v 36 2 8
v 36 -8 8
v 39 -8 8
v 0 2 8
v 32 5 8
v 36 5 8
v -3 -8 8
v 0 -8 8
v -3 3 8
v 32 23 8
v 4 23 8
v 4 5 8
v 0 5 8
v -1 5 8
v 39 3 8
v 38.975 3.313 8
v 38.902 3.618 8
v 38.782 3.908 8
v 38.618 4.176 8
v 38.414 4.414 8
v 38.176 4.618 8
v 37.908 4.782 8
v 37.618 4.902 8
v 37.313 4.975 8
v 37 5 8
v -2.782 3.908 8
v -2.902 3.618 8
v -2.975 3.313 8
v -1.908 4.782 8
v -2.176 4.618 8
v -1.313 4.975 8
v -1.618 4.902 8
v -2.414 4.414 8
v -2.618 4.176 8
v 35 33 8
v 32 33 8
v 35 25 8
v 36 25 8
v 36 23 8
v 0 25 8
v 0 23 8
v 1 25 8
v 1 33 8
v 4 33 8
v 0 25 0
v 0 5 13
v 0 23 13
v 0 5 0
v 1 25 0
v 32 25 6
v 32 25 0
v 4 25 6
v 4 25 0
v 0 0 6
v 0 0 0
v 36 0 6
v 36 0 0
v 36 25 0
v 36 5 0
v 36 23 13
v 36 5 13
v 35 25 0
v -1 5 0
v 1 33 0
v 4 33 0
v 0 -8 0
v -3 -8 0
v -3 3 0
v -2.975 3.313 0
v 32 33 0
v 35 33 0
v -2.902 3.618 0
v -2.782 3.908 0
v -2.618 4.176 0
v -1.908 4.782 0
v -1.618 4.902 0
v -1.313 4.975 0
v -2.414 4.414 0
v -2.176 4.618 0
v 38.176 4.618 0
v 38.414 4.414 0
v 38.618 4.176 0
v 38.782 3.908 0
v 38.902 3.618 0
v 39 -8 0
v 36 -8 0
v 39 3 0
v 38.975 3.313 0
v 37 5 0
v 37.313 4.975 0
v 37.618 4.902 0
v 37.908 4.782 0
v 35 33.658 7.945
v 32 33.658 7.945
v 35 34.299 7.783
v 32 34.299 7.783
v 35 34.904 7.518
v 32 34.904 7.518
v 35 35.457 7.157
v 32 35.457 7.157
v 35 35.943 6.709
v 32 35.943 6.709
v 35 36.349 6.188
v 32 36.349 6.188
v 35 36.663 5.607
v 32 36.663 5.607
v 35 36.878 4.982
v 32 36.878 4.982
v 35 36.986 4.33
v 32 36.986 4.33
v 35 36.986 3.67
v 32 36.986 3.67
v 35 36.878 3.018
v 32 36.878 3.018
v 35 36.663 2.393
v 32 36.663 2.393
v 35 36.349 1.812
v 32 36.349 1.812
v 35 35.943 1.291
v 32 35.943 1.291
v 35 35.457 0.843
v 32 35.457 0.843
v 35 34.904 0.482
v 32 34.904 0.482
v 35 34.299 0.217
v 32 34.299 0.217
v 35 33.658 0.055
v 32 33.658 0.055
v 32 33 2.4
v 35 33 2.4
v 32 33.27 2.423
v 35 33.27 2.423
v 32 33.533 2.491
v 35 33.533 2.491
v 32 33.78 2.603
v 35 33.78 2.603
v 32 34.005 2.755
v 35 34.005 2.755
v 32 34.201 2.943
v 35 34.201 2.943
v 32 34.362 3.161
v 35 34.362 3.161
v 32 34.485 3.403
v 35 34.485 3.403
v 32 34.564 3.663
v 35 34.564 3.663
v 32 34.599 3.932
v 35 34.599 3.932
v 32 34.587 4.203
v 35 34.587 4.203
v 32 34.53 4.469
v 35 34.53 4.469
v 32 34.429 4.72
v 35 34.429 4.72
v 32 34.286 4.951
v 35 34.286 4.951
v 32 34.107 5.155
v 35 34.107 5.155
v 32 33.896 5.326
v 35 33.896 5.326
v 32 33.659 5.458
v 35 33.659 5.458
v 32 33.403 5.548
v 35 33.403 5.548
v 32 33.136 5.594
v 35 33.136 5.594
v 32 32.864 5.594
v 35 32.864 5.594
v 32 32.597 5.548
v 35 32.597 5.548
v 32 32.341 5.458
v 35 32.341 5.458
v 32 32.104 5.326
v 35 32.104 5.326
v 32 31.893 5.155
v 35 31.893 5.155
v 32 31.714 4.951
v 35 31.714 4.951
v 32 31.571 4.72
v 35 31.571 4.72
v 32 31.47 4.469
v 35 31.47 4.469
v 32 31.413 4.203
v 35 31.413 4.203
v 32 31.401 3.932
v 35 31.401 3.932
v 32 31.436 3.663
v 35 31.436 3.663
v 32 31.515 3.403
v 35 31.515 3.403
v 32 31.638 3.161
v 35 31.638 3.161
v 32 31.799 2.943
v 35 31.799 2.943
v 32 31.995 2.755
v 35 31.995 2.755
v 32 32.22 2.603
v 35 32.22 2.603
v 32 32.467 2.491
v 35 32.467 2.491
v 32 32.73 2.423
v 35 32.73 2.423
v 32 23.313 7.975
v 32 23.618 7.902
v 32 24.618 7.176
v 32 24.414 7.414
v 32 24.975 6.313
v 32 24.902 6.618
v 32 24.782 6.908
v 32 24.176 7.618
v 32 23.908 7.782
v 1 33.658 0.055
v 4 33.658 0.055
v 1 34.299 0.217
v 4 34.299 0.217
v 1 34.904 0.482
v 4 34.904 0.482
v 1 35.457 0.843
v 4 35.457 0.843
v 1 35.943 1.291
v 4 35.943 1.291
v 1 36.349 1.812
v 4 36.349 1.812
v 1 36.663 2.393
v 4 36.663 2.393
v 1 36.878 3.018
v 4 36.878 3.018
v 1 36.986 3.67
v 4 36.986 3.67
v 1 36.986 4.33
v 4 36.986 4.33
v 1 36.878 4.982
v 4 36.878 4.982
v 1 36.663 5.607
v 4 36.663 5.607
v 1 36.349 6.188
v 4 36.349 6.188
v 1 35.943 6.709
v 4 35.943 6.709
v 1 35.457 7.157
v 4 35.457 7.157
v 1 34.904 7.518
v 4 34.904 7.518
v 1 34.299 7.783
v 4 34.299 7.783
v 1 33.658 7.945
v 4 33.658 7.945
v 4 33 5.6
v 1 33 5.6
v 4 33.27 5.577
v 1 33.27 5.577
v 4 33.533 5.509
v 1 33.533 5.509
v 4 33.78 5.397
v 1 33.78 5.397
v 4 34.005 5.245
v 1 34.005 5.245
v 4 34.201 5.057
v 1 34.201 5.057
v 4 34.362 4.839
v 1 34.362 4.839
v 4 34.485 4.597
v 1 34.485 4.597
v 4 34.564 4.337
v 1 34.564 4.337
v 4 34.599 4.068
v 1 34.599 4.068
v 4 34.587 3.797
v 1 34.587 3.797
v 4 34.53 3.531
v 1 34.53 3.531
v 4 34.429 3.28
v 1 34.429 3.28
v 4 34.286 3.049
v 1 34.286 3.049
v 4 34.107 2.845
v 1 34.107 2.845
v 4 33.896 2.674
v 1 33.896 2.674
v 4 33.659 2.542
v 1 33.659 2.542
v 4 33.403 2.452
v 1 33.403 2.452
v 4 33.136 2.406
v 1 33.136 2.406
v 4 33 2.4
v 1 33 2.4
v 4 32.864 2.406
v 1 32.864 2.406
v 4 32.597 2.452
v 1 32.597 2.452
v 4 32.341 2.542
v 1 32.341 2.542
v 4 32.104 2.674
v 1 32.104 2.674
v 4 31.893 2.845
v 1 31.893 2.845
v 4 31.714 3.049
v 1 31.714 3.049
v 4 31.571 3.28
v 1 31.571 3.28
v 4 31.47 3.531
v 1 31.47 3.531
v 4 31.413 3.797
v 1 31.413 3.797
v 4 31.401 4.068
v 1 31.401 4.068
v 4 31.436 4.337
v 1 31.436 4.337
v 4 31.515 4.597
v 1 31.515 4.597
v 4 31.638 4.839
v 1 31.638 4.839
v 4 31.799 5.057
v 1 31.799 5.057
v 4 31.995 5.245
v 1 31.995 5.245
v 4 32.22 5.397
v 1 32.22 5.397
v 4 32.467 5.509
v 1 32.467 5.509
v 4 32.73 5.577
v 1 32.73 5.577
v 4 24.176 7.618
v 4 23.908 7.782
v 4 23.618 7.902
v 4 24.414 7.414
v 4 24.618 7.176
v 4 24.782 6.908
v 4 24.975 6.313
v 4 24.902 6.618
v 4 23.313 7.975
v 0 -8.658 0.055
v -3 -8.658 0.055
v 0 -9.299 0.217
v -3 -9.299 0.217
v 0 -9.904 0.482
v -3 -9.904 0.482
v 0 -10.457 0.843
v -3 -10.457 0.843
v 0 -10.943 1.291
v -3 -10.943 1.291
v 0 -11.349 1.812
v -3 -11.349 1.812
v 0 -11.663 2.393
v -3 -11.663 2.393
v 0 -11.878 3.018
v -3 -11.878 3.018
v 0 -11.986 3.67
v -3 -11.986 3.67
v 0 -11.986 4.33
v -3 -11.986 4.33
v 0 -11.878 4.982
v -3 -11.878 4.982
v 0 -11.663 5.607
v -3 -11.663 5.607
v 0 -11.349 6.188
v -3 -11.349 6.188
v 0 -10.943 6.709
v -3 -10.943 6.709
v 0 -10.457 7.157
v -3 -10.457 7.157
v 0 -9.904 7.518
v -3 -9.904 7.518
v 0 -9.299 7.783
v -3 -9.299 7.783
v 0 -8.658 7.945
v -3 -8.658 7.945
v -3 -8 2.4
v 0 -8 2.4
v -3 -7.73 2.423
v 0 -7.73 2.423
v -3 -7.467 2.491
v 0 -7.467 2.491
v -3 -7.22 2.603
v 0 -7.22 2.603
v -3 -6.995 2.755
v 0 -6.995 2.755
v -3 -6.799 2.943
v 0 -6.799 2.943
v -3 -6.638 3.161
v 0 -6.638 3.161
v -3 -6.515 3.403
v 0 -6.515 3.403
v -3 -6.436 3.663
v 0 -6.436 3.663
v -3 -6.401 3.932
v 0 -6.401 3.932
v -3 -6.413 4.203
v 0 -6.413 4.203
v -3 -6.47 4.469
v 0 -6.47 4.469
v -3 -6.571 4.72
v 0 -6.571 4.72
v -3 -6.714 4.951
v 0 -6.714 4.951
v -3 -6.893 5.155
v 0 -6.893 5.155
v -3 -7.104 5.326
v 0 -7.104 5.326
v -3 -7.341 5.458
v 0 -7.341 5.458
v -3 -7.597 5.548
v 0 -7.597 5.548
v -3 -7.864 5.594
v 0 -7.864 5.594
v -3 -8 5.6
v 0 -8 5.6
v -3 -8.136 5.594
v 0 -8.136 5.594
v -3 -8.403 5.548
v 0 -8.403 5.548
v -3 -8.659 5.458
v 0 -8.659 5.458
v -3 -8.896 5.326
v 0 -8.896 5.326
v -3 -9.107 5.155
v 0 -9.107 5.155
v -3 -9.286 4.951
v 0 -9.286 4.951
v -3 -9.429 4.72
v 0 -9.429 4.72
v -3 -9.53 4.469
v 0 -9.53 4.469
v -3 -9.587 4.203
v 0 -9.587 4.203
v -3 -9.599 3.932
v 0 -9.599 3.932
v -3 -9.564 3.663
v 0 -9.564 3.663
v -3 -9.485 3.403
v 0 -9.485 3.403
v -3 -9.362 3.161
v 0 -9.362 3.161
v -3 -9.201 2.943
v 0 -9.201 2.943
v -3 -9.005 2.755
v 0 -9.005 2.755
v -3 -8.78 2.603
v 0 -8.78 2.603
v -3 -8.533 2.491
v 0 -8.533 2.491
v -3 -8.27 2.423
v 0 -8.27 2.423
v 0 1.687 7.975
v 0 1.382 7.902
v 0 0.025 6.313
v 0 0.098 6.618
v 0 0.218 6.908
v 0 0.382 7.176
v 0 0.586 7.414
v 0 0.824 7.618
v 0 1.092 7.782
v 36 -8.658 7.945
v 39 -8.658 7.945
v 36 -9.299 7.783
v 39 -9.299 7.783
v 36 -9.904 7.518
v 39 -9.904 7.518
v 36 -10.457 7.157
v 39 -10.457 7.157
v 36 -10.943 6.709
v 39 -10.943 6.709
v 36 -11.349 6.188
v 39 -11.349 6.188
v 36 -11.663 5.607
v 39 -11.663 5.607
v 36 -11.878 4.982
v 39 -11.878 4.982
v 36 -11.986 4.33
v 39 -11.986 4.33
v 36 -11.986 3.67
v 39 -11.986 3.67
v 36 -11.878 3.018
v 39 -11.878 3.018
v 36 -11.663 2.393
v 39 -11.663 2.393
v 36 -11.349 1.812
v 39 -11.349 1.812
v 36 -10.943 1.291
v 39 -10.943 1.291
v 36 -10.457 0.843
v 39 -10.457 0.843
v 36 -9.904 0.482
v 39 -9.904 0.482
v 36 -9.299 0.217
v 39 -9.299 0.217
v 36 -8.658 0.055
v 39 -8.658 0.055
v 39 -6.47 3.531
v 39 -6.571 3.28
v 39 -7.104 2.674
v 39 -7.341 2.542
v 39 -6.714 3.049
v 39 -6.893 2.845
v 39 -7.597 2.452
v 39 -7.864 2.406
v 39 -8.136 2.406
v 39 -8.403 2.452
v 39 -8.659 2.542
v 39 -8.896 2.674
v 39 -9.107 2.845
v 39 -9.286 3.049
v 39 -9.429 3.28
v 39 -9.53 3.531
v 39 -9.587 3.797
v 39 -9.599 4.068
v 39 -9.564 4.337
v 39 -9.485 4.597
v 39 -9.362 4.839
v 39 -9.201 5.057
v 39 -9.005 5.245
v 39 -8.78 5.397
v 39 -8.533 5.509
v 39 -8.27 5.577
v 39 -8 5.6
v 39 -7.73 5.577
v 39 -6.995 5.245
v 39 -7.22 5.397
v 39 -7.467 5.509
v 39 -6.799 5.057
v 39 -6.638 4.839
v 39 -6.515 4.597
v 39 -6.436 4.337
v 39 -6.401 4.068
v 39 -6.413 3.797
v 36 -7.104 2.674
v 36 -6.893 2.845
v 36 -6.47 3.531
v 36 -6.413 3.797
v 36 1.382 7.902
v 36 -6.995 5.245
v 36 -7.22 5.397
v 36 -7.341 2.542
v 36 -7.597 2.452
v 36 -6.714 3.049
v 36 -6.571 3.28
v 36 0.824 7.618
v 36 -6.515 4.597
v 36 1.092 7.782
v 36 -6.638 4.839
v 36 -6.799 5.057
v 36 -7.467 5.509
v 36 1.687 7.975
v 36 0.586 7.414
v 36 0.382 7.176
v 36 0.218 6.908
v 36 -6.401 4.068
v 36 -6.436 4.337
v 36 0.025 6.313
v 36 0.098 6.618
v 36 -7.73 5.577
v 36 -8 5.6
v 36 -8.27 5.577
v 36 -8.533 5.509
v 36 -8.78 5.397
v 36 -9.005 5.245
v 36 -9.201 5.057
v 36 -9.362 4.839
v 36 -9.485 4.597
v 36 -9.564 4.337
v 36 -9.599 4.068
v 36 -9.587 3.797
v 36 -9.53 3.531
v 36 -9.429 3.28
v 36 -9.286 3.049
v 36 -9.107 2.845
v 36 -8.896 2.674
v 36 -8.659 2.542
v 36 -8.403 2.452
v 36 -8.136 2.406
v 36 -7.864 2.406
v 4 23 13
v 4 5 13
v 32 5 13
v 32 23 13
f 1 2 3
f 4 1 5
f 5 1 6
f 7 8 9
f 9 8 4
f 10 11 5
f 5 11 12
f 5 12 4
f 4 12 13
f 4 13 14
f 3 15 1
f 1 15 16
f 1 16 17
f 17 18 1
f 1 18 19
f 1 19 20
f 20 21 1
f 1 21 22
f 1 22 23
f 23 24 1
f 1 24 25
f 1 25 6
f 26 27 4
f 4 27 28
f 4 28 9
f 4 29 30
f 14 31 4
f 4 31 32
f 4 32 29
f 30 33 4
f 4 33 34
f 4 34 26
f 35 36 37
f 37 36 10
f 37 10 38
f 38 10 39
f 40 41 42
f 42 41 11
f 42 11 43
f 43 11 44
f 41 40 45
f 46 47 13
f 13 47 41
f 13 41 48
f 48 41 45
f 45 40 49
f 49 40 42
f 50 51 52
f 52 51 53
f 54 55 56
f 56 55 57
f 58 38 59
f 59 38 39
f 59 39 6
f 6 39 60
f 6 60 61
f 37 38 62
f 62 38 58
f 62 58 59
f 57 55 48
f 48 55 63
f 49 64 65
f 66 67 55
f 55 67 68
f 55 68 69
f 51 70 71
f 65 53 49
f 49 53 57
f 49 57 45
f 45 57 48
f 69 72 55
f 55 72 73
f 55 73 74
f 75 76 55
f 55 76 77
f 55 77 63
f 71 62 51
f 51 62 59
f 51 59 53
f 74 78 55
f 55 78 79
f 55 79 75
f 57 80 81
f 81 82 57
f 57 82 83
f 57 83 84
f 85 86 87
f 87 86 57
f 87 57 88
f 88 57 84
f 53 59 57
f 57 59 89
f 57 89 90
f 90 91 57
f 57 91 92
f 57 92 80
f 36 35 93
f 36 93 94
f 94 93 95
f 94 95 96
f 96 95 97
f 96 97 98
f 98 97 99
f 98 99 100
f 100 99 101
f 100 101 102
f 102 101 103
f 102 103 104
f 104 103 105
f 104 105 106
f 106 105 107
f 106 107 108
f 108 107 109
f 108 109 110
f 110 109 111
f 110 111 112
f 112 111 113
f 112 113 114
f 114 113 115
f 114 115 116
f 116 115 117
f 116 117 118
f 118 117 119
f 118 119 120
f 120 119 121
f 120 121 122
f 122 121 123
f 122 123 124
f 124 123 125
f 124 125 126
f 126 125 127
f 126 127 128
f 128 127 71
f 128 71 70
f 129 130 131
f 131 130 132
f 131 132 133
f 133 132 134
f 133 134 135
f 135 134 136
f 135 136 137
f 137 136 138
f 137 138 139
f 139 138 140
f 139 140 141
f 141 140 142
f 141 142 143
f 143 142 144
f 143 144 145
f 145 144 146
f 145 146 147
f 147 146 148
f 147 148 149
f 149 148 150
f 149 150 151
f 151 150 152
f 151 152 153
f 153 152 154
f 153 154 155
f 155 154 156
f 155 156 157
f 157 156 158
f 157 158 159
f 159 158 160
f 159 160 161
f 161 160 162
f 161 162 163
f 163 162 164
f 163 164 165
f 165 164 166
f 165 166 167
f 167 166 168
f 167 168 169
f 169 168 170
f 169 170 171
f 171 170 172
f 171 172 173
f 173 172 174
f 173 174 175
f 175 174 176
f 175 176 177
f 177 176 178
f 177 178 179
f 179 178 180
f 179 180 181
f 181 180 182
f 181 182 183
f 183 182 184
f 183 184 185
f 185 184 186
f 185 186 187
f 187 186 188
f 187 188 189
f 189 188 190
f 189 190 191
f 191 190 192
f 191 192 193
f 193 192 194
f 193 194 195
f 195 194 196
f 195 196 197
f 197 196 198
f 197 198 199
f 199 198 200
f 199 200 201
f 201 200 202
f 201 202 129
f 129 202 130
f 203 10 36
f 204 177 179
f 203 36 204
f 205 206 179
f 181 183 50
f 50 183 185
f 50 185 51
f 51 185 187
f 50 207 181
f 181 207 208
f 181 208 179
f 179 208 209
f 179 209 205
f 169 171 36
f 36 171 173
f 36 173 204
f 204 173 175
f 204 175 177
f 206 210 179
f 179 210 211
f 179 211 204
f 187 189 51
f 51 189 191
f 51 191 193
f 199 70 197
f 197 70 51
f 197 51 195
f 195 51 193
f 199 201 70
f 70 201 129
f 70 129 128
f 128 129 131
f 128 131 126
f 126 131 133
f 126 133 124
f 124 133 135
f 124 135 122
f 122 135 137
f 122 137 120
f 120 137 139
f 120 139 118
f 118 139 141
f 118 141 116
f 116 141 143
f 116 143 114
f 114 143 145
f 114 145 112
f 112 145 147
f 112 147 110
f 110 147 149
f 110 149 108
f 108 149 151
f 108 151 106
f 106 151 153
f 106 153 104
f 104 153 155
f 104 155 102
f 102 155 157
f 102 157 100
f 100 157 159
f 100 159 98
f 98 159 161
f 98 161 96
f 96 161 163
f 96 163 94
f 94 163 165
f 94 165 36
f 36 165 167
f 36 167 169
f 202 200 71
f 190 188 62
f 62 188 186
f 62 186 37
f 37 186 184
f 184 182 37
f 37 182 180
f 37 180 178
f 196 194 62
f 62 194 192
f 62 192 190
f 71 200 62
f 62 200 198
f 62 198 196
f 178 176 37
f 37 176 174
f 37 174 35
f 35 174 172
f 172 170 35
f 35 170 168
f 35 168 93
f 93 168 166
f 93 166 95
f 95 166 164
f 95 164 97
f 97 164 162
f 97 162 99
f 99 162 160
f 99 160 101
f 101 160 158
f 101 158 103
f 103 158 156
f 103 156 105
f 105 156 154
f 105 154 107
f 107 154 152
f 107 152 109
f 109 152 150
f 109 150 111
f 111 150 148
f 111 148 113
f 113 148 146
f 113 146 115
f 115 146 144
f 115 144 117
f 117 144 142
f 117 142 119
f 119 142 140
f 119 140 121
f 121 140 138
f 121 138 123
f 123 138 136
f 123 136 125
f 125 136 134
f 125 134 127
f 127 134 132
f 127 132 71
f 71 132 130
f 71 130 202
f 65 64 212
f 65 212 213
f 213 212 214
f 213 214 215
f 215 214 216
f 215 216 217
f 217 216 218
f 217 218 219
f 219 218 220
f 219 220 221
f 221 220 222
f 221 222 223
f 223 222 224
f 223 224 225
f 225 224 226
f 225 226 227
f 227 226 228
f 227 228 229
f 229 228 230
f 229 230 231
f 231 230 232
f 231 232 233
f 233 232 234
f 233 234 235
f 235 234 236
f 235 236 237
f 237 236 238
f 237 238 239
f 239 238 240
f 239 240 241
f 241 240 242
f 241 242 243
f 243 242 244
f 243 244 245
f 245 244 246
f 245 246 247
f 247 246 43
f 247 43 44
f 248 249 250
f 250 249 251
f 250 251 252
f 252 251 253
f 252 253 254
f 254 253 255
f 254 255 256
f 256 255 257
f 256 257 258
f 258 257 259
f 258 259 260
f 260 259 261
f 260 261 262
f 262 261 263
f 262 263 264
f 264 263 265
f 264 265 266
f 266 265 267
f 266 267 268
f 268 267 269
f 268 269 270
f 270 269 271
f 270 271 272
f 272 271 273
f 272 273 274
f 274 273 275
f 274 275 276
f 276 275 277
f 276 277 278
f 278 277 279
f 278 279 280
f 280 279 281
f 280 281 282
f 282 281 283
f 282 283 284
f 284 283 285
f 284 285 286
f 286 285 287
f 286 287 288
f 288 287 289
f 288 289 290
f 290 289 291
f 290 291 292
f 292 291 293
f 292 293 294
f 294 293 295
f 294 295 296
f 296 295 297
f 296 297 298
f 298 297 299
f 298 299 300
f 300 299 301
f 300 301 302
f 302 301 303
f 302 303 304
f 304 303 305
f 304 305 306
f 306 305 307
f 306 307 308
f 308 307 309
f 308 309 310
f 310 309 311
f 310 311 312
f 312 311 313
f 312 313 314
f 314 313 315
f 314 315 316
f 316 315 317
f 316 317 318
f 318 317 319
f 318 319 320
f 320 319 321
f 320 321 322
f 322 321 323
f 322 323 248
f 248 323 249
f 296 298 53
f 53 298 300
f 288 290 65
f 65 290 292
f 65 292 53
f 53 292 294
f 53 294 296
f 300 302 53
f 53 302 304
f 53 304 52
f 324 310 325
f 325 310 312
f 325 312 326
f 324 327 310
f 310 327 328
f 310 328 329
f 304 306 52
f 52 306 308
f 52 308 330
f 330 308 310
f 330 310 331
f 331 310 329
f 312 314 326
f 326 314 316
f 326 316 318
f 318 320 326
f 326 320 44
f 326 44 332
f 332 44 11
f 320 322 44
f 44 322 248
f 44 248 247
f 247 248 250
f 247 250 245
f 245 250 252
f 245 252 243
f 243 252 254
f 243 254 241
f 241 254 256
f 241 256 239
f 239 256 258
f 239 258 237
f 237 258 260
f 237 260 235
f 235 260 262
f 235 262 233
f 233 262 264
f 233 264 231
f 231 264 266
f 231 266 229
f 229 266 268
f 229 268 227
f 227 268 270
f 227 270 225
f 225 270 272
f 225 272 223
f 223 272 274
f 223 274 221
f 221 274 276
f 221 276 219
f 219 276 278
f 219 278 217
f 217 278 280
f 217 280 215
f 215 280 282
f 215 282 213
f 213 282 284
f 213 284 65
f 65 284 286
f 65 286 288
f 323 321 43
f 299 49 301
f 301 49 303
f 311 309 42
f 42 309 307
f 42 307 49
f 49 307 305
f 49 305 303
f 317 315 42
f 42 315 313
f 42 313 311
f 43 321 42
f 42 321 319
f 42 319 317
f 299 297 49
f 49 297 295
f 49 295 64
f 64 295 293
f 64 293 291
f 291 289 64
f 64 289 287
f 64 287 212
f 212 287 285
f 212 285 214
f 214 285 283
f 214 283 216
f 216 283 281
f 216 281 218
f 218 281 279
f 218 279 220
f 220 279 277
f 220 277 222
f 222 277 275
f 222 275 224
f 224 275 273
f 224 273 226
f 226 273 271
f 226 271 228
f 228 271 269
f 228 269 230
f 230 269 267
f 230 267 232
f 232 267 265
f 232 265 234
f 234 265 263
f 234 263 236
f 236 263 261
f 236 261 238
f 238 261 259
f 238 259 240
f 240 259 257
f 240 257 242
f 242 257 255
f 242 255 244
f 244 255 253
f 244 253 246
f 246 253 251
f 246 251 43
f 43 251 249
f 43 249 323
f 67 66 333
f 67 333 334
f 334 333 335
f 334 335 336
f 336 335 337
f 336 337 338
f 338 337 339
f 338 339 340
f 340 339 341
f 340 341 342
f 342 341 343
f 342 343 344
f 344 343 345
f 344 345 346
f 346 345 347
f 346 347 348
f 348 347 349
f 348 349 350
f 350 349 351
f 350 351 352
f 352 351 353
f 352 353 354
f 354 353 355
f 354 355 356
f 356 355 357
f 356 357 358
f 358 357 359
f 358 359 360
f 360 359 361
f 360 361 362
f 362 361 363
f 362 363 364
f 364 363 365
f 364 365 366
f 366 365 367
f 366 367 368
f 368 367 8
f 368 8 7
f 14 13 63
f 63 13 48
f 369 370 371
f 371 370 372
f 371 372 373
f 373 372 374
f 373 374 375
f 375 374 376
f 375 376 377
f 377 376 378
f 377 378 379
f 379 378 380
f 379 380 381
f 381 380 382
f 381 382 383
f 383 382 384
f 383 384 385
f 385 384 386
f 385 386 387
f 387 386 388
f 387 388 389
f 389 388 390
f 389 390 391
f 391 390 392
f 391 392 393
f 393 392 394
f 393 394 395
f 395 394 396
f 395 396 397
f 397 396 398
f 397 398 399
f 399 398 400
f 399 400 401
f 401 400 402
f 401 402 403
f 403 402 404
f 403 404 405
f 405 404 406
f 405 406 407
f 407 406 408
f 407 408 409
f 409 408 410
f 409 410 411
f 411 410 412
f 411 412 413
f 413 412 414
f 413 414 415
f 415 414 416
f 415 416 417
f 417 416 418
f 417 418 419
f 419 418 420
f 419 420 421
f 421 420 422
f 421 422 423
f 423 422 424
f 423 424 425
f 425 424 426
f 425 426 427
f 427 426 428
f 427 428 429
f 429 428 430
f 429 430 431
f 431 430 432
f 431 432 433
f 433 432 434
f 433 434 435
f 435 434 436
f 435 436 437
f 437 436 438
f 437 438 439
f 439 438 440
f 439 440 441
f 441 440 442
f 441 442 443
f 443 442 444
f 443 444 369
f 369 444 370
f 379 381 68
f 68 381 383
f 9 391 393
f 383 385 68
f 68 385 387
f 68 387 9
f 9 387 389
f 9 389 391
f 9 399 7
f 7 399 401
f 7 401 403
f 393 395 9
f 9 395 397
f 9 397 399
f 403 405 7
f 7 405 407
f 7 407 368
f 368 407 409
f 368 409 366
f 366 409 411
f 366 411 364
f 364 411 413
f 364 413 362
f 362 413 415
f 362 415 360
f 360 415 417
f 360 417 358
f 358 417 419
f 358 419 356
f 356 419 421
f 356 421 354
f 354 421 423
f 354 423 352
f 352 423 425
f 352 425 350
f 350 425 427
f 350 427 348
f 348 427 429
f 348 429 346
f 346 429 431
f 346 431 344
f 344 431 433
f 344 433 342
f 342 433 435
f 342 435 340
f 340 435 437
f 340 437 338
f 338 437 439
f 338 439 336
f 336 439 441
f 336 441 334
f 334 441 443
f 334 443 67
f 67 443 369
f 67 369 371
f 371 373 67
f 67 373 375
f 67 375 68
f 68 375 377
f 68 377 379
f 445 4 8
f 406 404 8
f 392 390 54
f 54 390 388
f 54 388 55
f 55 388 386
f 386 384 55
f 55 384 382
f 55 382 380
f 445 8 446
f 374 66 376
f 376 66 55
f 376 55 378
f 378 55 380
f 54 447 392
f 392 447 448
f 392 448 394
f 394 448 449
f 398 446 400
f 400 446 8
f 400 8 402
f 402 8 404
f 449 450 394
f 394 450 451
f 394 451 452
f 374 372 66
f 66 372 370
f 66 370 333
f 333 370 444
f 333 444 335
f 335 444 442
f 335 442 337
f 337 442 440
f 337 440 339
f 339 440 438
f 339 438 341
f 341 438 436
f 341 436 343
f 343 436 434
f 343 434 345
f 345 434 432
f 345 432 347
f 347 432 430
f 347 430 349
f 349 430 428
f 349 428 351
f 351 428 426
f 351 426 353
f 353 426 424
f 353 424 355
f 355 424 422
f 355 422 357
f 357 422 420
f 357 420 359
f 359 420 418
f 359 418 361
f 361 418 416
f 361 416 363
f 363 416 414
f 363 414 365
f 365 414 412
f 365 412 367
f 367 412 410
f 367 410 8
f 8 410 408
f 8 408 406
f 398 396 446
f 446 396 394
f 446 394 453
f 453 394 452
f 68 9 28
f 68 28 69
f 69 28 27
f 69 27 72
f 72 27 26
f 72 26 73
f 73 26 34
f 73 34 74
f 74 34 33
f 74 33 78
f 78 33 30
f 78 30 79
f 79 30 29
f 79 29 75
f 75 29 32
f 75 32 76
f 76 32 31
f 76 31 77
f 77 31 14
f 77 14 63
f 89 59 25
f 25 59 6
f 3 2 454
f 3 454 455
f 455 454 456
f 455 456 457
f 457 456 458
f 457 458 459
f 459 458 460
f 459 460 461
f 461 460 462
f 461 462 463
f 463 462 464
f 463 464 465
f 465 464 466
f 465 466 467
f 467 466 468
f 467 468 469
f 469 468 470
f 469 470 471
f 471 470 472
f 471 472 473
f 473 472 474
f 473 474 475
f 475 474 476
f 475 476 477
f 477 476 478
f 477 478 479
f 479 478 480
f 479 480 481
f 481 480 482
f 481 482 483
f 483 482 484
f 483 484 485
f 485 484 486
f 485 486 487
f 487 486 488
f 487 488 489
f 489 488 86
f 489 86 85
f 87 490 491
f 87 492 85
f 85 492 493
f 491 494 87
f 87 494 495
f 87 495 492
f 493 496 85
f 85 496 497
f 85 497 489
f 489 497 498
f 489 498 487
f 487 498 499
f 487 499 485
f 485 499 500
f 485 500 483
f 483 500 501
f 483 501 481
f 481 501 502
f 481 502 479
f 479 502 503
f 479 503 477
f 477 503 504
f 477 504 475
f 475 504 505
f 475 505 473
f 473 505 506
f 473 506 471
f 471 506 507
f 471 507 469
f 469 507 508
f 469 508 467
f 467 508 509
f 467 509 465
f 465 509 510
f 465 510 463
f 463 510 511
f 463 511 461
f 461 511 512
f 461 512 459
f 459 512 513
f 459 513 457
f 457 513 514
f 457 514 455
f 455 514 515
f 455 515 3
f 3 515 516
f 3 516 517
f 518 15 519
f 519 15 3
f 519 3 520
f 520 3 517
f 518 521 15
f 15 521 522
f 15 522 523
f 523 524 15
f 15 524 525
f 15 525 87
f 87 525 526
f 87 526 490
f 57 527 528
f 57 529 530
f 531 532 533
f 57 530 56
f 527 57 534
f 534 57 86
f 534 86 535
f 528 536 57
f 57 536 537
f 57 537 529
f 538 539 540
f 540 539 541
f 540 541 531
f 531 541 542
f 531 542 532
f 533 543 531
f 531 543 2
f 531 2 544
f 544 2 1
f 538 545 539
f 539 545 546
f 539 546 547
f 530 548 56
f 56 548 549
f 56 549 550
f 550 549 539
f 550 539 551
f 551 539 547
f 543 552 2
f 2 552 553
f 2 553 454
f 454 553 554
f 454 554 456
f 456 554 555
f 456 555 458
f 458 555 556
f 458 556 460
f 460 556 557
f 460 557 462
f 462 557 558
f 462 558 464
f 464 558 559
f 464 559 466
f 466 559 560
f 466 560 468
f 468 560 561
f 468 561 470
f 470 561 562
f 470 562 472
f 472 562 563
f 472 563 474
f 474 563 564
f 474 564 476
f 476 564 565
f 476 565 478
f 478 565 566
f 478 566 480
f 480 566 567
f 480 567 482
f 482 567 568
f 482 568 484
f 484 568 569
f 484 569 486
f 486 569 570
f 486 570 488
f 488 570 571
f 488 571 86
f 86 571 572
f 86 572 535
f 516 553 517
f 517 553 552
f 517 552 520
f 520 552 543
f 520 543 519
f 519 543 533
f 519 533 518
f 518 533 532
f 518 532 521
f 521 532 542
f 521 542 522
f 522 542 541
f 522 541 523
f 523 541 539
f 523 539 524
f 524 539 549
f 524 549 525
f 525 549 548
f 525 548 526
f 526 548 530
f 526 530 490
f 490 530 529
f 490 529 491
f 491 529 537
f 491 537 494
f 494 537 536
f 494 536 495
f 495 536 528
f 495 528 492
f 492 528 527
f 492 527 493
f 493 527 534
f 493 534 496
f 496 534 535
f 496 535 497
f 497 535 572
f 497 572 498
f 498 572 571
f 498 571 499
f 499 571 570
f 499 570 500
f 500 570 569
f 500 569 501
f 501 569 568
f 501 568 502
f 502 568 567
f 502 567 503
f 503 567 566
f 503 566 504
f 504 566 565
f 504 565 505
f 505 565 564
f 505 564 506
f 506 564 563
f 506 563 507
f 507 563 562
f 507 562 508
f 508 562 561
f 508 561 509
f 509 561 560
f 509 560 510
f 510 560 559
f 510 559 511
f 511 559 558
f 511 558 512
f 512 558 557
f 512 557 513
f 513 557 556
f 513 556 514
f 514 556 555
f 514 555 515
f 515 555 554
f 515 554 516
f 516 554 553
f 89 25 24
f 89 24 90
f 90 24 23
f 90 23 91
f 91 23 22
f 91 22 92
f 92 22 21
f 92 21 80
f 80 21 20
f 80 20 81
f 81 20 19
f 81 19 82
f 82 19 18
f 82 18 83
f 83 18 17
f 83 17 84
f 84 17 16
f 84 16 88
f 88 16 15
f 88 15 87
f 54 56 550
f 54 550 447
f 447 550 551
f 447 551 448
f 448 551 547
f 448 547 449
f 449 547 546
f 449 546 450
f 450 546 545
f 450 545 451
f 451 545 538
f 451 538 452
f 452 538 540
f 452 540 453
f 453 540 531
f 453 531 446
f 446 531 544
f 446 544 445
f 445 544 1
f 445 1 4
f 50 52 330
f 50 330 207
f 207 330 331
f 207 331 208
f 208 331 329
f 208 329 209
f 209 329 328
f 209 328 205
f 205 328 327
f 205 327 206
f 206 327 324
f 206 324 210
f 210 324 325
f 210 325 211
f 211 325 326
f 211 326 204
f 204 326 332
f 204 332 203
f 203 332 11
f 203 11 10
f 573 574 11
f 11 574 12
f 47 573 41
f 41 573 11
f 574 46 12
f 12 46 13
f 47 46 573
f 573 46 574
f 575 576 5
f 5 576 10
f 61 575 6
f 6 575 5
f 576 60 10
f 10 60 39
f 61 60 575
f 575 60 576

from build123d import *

# Parameters (mm, degrees)
SKETCH_1_W      = 36
SKETCH_1_H      = 25
EXTRUDE_1_DEPTH = 8
EXTRUDE_START   = -1
SKETCH_2_R      = 1.6
EXTRUDE_2_DEPTH = 3
EXTRUDE_START_2 = -32
SKETCH_2_3_R    = 1.6
EXTRUDE_3_DEPTH = 3
SKETCH_4_R      = 1.6
EXTRUDE_4_DEPTH = 3
FILLET_2_R      = 2
EXTRUDE_START_3 = -39
SKETCH_4_3_R    = 1.6
EXTRUDE_5_DEPTH = 3
FILLET_3_R      = 2
FILLET_4_R      = 2
FILLET_5_R      = 2
SKETCH_5_W      = 4
SKETCH_5_H      = 18
EXTRUDE_6_DEPTH = 5


with BuildPart() as part:
    # Эскиз1 → Бобышка-Вытянуть1 (new body)
    with BuildSketch(Plane.XY):
        with Locations((18, 12.5)):
            Rectangle(SKETCH_1_W, SKETCH_1_H)
    extrude(amount=EXTRUDE_1_DEPTH)

    # Эскиз2 → Бобышка-Вытянуть2 (add)
    with BuildSketch(Plane(origin=(36, 0, 0), x_dir=(0, 0, -1), z_dir=(1, 0, 0)).offset(EXTRUDE_START)):
        with BuildLine():
            Line((-8, 25), (0, 25))
            Line((0, 25), (0, 33))
            ThreePointArc((0, 33), (-4, 37), (-8, 33))
            Line((-8, 33), (-8, 25))
        make_face()
        with Locations((-4, 33)):
            Circle(SKETCH_2_R, mode=Mode.SUBTRACT)
    extrude(amount=-EXTRUDE_2_DEPTH)

    # Эскиз2<3> → Бобышка-Вытянуть3 (add)
    with BuildSketch(Plane(origin=(36, 0, 0), x_dir=(0, 0, -1), z_dir=(1, 0, 0)).offset(EXTRUDE_START_2)):
        with BuildLine():
            Line((-8, 25), (0, 25))
            Line((0, 25), (0, 33))
            ThreePointArc((0, 33), (-4, 37), (-8, 33))
            Line((-8, 33), (-8, 25))
        make_face()
        with Locations((-4, 33)):
            Circle(SKETCH_2_3_R, mode=Mode.SUBTRACT)
    extrude(amount=-EXTRUDE_3_DEPTH)

    # Эскиз4 → Бобышка-Вытянуть4 (add)
    with BuildSketch(Plane.ZY):
        with BuildLine():
            Line((8, -8), (8, 5))
            Line((8, 5), (0, 5))
            Line((0, 5), (0, -8))
            ThreePointArc((0, -8), (4, -12), (8, -8))
        make_face()
        with Locations((4, -8)):
            Circle(SKETCH_4_R, mode=Mode.SUBTRACT)
    extrude(amount=EXTRUDE_4_DEPTH)

    # Скругление2
    fillet_2_edges = [part.edges().sort_by_distance(p)[0] for p in [
        (-3, 5, 4),
    ]]
    fillet(fillet_2_edges, radius=FILLET_2_R)

    # Эскиз4<3> → Бобышка-Вытянуть5 (add)
    with BuildSketch(Plane.ZY.offset(EXTRUDE_START_3)):
        with BuildLine():
            Line((8, -8), (8, 5))
            Line((8, 5), (0, 5))
            Line((0, 5), (0, -8))
            ThreePointArc((0, -8), (4, -12), (8, -8))
        make_face()
        with Locations((4, -8)):
            Circle(SKETCH_4_3_R, mode=Mode.SUBTRACT)
    extrude(amount=EXTRUDE_5_DEPTH)

    # Скругление3
    fillet_3_edges = [part.edges().sort_by_distance(p)[0] for p in [
        (39, 5, 4),
    ]]
    fillet(fillet_3_edges, radius=FILLET_3_R)

    # Скругление4
    fillet_4_edges = [part.edges().sort_by_distance(p)[0] for p in [
        (18, 0, 8),
    ]]
    fillet(fillet_4_edges, radius=FILLET_4_R)

    # Скругление5
    fillet_5_edges = [part.edges().sort_by_distance(p)[0] for p in [
        (18, 25, 8),
    ]]
    fillet(fillet_5_edges, radius=FILLET_5_R)

    # Эскиз5 → Бобышка-Вытянуть6 (add)
    with BuildSketch(Plane.XY.offset(8)):
        with Locations((2, 14)):
            Rectangle(SKETCH_5_W, SKETCH_5_H)
        with Locations((34, 14)):
            Rectangle(SKETCH_5_W, SKETCH_5_H)
    extrude(amount=EXTRUDE_6_DEPTH)


solid = part.part
